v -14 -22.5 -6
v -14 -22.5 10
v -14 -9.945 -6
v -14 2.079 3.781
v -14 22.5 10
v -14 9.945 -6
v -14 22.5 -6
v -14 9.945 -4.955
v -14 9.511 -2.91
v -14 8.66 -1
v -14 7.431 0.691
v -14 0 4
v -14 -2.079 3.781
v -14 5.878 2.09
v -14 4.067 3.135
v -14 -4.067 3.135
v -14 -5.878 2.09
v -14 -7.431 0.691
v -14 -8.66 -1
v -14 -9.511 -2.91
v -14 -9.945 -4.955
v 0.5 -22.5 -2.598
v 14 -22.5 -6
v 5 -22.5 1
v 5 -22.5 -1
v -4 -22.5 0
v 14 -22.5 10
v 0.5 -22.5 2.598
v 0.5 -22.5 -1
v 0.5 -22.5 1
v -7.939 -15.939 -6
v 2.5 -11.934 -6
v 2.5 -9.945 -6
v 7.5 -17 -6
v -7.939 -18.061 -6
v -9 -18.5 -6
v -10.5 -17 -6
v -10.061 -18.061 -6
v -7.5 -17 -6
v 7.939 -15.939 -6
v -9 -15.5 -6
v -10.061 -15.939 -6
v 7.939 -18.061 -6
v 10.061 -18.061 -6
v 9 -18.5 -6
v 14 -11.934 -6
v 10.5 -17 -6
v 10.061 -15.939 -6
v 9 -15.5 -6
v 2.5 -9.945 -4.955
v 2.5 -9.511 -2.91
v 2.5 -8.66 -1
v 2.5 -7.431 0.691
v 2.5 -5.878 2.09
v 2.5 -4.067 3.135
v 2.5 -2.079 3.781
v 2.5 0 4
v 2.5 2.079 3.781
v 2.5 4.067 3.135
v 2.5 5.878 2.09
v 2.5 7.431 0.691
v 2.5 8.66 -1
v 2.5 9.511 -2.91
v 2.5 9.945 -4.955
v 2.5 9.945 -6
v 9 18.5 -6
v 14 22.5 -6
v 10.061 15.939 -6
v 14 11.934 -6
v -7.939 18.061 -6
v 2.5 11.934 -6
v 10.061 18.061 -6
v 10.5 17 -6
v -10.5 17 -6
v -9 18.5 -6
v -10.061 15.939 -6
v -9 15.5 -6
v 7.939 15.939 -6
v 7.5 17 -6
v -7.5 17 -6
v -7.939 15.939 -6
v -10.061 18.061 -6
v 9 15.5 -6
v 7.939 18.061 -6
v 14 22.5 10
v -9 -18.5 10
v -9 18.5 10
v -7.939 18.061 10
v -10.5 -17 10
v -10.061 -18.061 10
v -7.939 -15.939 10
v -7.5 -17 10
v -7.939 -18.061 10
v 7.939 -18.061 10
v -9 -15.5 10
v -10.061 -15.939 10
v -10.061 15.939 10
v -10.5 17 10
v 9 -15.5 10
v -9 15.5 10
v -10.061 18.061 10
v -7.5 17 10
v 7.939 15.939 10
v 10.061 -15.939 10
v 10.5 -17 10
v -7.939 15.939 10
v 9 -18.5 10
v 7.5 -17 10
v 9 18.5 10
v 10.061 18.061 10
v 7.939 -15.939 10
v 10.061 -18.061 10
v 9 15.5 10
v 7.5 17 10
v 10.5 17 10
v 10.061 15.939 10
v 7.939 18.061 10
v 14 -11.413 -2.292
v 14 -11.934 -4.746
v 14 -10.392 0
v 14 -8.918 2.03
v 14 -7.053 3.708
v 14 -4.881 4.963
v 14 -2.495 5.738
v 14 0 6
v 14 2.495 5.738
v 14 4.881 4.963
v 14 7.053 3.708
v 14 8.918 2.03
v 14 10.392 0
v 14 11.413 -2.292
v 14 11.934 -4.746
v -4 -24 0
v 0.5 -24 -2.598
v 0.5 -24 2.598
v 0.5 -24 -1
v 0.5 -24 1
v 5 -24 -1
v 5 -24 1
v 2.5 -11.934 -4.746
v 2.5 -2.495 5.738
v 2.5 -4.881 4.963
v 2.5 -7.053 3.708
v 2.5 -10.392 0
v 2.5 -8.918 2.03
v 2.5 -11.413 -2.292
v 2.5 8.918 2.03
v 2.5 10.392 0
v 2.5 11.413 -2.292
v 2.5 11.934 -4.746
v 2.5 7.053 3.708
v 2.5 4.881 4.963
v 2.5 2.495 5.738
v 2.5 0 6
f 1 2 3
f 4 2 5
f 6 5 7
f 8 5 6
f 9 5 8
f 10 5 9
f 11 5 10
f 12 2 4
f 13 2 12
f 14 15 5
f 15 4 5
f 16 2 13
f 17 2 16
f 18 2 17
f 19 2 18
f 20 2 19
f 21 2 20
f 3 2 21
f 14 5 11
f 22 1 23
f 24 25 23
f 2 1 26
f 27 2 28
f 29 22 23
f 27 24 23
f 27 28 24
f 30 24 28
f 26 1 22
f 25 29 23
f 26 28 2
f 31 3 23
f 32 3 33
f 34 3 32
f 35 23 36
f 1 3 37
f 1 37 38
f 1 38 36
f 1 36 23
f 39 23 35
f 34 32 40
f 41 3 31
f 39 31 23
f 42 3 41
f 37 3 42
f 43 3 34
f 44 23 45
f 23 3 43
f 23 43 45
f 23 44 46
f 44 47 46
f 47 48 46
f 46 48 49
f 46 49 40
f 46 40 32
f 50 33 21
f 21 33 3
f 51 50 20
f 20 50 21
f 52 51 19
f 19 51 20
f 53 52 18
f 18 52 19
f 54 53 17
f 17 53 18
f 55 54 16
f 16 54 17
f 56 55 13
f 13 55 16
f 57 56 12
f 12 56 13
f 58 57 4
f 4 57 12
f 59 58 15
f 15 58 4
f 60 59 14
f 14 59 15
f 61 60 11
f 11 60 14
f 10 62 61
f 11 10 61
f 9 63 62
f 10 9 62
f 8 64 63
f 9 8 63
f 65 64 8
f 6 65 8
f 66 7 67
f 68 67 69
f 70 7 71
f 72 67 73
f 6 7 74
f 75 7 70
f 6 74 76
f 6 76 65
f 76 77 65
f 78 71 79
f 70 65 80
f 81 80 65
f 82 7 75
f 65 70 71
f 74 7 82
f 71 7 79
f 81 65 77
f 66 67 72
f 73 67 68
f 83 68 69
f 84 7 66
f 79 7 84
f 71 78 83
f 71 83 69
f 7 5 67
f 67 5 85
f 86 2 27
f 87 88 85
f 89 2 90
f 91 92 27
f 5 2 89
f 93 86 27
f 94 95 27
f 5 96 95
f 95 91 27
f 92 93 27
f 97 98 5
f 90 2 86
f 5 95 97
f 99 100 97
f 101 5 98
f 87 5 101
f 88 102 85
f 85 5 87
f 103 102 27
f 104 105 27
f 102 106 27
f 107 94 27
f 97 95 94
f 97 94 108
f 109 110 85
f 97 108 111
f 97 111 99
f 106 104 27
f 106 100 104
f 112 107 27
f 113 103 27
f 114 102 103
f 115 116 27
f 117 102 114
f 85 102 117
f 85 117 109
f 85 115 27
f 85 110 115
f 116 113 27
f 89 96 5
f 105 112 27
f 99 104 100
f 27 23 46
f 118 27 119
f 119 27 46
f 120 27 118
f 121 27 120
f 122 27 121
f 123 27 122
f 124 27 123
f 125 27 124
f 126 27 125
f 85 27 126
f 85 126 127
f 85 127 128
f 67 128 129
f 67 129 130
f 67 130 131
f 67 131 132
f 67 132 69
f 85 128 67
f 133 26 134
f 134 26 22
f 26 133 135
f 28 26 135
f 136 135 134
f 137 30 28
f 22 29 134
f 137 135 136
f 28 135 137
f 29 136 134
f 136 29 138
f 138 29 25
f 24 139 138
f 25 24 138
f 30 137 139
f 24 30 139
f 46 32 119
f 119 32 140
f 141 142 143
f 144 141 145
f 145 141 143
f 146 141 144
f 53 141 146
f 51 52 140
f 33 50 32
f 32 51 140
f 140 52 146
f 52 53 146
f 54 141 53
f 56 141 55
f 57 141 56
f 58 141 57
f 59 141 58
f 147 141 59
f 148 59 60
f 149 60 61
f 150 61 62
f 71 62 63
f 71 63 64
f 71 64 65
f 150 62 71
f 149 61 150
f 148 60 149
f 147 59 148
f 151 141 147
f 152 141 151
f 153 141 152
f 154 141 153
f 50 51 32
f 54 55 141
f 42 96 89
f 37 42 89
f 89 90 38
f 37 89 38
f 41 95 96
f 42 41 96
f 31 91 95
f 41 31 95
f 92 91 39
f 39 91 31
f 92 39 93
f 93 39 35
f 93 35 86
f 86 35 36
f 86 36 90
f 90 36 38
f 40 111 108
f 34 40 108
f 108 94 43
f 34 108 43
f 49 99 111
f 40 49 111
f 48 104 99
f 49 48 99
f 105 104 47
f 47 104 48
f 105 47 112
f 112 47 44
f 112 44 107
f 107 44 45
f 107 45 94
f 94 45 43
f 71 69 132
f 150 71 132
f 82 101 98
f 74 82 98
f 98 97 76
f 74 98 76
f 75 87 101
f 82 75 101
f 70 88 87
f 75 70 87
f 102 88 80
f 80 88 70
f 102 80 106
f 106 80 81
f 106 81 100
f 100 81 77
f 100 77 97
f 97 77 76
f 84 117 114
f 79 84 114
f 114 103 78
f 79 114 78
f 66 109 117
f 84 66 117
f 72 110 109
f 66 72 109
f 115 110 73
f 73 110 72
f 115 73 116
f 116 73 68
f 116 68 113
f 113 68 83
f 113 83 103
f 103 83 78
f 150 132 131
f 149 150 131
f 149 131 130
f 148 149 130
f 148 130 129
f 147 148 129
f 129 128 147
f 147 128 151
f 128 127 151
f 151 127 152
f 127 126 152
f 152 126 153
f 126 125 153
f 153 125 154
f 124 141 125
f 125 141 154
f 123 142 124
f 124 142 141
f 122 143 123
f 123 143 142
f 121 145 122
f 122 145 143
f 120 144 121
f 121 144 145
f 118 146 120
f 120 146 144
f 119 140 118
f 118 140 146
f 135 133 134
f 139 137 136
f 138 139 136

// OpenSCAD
// file: arrow.scad
module arrow(){
	//arrowBody
	translate([0,-1,0]) color([0,1,1]) cube(size=[2.5,2,5]);
	//arrowHead
	translate([0,0,-1]) color([0,1,1]) rotate([0,90,0]) cylinder(h=2.5,r=3,$fn=3);
}

arrow();
// main file
use <arrow.scad>

module objectiveLensMountTop(){
	difference(){
		//mainBody
		translate([0,0,2]) color([0,.6,.5]) cube(size=[28,45,16],center=true);
		//lensHole
		translate([9,0,-6]) rotate([0,90,0]) cylinder(h=13,r=12,center=true);
		translate([-6,0,-6]) rotate([0,90,0]) cylinder(h=18,r=10,center=true);
		//screwHoles
		translate([-9,17,2]) color([1,0,0]) cylinder(h=18,r=1.5,$fn=8,center=true);
		translate([9,17,2]) color([1,0,0]) cylinder(h=18,r=1.5,$fn=8,center=true);
		translate([-9,-17,2]) color([1,0,0]) cylinder(h=18,r=1.5,$fn=8,center=true);
		translate([9,-17,2]) color([1,0,0]) cylinder(h=18,r=1.5,$fn=8,center=true);
	}
	translate([0,-24,0]){
		rotate([90,0,90]){
			arrow();
		}
	}
}

translate([0,0,0]){
	objectiveLensMountTop();
}
